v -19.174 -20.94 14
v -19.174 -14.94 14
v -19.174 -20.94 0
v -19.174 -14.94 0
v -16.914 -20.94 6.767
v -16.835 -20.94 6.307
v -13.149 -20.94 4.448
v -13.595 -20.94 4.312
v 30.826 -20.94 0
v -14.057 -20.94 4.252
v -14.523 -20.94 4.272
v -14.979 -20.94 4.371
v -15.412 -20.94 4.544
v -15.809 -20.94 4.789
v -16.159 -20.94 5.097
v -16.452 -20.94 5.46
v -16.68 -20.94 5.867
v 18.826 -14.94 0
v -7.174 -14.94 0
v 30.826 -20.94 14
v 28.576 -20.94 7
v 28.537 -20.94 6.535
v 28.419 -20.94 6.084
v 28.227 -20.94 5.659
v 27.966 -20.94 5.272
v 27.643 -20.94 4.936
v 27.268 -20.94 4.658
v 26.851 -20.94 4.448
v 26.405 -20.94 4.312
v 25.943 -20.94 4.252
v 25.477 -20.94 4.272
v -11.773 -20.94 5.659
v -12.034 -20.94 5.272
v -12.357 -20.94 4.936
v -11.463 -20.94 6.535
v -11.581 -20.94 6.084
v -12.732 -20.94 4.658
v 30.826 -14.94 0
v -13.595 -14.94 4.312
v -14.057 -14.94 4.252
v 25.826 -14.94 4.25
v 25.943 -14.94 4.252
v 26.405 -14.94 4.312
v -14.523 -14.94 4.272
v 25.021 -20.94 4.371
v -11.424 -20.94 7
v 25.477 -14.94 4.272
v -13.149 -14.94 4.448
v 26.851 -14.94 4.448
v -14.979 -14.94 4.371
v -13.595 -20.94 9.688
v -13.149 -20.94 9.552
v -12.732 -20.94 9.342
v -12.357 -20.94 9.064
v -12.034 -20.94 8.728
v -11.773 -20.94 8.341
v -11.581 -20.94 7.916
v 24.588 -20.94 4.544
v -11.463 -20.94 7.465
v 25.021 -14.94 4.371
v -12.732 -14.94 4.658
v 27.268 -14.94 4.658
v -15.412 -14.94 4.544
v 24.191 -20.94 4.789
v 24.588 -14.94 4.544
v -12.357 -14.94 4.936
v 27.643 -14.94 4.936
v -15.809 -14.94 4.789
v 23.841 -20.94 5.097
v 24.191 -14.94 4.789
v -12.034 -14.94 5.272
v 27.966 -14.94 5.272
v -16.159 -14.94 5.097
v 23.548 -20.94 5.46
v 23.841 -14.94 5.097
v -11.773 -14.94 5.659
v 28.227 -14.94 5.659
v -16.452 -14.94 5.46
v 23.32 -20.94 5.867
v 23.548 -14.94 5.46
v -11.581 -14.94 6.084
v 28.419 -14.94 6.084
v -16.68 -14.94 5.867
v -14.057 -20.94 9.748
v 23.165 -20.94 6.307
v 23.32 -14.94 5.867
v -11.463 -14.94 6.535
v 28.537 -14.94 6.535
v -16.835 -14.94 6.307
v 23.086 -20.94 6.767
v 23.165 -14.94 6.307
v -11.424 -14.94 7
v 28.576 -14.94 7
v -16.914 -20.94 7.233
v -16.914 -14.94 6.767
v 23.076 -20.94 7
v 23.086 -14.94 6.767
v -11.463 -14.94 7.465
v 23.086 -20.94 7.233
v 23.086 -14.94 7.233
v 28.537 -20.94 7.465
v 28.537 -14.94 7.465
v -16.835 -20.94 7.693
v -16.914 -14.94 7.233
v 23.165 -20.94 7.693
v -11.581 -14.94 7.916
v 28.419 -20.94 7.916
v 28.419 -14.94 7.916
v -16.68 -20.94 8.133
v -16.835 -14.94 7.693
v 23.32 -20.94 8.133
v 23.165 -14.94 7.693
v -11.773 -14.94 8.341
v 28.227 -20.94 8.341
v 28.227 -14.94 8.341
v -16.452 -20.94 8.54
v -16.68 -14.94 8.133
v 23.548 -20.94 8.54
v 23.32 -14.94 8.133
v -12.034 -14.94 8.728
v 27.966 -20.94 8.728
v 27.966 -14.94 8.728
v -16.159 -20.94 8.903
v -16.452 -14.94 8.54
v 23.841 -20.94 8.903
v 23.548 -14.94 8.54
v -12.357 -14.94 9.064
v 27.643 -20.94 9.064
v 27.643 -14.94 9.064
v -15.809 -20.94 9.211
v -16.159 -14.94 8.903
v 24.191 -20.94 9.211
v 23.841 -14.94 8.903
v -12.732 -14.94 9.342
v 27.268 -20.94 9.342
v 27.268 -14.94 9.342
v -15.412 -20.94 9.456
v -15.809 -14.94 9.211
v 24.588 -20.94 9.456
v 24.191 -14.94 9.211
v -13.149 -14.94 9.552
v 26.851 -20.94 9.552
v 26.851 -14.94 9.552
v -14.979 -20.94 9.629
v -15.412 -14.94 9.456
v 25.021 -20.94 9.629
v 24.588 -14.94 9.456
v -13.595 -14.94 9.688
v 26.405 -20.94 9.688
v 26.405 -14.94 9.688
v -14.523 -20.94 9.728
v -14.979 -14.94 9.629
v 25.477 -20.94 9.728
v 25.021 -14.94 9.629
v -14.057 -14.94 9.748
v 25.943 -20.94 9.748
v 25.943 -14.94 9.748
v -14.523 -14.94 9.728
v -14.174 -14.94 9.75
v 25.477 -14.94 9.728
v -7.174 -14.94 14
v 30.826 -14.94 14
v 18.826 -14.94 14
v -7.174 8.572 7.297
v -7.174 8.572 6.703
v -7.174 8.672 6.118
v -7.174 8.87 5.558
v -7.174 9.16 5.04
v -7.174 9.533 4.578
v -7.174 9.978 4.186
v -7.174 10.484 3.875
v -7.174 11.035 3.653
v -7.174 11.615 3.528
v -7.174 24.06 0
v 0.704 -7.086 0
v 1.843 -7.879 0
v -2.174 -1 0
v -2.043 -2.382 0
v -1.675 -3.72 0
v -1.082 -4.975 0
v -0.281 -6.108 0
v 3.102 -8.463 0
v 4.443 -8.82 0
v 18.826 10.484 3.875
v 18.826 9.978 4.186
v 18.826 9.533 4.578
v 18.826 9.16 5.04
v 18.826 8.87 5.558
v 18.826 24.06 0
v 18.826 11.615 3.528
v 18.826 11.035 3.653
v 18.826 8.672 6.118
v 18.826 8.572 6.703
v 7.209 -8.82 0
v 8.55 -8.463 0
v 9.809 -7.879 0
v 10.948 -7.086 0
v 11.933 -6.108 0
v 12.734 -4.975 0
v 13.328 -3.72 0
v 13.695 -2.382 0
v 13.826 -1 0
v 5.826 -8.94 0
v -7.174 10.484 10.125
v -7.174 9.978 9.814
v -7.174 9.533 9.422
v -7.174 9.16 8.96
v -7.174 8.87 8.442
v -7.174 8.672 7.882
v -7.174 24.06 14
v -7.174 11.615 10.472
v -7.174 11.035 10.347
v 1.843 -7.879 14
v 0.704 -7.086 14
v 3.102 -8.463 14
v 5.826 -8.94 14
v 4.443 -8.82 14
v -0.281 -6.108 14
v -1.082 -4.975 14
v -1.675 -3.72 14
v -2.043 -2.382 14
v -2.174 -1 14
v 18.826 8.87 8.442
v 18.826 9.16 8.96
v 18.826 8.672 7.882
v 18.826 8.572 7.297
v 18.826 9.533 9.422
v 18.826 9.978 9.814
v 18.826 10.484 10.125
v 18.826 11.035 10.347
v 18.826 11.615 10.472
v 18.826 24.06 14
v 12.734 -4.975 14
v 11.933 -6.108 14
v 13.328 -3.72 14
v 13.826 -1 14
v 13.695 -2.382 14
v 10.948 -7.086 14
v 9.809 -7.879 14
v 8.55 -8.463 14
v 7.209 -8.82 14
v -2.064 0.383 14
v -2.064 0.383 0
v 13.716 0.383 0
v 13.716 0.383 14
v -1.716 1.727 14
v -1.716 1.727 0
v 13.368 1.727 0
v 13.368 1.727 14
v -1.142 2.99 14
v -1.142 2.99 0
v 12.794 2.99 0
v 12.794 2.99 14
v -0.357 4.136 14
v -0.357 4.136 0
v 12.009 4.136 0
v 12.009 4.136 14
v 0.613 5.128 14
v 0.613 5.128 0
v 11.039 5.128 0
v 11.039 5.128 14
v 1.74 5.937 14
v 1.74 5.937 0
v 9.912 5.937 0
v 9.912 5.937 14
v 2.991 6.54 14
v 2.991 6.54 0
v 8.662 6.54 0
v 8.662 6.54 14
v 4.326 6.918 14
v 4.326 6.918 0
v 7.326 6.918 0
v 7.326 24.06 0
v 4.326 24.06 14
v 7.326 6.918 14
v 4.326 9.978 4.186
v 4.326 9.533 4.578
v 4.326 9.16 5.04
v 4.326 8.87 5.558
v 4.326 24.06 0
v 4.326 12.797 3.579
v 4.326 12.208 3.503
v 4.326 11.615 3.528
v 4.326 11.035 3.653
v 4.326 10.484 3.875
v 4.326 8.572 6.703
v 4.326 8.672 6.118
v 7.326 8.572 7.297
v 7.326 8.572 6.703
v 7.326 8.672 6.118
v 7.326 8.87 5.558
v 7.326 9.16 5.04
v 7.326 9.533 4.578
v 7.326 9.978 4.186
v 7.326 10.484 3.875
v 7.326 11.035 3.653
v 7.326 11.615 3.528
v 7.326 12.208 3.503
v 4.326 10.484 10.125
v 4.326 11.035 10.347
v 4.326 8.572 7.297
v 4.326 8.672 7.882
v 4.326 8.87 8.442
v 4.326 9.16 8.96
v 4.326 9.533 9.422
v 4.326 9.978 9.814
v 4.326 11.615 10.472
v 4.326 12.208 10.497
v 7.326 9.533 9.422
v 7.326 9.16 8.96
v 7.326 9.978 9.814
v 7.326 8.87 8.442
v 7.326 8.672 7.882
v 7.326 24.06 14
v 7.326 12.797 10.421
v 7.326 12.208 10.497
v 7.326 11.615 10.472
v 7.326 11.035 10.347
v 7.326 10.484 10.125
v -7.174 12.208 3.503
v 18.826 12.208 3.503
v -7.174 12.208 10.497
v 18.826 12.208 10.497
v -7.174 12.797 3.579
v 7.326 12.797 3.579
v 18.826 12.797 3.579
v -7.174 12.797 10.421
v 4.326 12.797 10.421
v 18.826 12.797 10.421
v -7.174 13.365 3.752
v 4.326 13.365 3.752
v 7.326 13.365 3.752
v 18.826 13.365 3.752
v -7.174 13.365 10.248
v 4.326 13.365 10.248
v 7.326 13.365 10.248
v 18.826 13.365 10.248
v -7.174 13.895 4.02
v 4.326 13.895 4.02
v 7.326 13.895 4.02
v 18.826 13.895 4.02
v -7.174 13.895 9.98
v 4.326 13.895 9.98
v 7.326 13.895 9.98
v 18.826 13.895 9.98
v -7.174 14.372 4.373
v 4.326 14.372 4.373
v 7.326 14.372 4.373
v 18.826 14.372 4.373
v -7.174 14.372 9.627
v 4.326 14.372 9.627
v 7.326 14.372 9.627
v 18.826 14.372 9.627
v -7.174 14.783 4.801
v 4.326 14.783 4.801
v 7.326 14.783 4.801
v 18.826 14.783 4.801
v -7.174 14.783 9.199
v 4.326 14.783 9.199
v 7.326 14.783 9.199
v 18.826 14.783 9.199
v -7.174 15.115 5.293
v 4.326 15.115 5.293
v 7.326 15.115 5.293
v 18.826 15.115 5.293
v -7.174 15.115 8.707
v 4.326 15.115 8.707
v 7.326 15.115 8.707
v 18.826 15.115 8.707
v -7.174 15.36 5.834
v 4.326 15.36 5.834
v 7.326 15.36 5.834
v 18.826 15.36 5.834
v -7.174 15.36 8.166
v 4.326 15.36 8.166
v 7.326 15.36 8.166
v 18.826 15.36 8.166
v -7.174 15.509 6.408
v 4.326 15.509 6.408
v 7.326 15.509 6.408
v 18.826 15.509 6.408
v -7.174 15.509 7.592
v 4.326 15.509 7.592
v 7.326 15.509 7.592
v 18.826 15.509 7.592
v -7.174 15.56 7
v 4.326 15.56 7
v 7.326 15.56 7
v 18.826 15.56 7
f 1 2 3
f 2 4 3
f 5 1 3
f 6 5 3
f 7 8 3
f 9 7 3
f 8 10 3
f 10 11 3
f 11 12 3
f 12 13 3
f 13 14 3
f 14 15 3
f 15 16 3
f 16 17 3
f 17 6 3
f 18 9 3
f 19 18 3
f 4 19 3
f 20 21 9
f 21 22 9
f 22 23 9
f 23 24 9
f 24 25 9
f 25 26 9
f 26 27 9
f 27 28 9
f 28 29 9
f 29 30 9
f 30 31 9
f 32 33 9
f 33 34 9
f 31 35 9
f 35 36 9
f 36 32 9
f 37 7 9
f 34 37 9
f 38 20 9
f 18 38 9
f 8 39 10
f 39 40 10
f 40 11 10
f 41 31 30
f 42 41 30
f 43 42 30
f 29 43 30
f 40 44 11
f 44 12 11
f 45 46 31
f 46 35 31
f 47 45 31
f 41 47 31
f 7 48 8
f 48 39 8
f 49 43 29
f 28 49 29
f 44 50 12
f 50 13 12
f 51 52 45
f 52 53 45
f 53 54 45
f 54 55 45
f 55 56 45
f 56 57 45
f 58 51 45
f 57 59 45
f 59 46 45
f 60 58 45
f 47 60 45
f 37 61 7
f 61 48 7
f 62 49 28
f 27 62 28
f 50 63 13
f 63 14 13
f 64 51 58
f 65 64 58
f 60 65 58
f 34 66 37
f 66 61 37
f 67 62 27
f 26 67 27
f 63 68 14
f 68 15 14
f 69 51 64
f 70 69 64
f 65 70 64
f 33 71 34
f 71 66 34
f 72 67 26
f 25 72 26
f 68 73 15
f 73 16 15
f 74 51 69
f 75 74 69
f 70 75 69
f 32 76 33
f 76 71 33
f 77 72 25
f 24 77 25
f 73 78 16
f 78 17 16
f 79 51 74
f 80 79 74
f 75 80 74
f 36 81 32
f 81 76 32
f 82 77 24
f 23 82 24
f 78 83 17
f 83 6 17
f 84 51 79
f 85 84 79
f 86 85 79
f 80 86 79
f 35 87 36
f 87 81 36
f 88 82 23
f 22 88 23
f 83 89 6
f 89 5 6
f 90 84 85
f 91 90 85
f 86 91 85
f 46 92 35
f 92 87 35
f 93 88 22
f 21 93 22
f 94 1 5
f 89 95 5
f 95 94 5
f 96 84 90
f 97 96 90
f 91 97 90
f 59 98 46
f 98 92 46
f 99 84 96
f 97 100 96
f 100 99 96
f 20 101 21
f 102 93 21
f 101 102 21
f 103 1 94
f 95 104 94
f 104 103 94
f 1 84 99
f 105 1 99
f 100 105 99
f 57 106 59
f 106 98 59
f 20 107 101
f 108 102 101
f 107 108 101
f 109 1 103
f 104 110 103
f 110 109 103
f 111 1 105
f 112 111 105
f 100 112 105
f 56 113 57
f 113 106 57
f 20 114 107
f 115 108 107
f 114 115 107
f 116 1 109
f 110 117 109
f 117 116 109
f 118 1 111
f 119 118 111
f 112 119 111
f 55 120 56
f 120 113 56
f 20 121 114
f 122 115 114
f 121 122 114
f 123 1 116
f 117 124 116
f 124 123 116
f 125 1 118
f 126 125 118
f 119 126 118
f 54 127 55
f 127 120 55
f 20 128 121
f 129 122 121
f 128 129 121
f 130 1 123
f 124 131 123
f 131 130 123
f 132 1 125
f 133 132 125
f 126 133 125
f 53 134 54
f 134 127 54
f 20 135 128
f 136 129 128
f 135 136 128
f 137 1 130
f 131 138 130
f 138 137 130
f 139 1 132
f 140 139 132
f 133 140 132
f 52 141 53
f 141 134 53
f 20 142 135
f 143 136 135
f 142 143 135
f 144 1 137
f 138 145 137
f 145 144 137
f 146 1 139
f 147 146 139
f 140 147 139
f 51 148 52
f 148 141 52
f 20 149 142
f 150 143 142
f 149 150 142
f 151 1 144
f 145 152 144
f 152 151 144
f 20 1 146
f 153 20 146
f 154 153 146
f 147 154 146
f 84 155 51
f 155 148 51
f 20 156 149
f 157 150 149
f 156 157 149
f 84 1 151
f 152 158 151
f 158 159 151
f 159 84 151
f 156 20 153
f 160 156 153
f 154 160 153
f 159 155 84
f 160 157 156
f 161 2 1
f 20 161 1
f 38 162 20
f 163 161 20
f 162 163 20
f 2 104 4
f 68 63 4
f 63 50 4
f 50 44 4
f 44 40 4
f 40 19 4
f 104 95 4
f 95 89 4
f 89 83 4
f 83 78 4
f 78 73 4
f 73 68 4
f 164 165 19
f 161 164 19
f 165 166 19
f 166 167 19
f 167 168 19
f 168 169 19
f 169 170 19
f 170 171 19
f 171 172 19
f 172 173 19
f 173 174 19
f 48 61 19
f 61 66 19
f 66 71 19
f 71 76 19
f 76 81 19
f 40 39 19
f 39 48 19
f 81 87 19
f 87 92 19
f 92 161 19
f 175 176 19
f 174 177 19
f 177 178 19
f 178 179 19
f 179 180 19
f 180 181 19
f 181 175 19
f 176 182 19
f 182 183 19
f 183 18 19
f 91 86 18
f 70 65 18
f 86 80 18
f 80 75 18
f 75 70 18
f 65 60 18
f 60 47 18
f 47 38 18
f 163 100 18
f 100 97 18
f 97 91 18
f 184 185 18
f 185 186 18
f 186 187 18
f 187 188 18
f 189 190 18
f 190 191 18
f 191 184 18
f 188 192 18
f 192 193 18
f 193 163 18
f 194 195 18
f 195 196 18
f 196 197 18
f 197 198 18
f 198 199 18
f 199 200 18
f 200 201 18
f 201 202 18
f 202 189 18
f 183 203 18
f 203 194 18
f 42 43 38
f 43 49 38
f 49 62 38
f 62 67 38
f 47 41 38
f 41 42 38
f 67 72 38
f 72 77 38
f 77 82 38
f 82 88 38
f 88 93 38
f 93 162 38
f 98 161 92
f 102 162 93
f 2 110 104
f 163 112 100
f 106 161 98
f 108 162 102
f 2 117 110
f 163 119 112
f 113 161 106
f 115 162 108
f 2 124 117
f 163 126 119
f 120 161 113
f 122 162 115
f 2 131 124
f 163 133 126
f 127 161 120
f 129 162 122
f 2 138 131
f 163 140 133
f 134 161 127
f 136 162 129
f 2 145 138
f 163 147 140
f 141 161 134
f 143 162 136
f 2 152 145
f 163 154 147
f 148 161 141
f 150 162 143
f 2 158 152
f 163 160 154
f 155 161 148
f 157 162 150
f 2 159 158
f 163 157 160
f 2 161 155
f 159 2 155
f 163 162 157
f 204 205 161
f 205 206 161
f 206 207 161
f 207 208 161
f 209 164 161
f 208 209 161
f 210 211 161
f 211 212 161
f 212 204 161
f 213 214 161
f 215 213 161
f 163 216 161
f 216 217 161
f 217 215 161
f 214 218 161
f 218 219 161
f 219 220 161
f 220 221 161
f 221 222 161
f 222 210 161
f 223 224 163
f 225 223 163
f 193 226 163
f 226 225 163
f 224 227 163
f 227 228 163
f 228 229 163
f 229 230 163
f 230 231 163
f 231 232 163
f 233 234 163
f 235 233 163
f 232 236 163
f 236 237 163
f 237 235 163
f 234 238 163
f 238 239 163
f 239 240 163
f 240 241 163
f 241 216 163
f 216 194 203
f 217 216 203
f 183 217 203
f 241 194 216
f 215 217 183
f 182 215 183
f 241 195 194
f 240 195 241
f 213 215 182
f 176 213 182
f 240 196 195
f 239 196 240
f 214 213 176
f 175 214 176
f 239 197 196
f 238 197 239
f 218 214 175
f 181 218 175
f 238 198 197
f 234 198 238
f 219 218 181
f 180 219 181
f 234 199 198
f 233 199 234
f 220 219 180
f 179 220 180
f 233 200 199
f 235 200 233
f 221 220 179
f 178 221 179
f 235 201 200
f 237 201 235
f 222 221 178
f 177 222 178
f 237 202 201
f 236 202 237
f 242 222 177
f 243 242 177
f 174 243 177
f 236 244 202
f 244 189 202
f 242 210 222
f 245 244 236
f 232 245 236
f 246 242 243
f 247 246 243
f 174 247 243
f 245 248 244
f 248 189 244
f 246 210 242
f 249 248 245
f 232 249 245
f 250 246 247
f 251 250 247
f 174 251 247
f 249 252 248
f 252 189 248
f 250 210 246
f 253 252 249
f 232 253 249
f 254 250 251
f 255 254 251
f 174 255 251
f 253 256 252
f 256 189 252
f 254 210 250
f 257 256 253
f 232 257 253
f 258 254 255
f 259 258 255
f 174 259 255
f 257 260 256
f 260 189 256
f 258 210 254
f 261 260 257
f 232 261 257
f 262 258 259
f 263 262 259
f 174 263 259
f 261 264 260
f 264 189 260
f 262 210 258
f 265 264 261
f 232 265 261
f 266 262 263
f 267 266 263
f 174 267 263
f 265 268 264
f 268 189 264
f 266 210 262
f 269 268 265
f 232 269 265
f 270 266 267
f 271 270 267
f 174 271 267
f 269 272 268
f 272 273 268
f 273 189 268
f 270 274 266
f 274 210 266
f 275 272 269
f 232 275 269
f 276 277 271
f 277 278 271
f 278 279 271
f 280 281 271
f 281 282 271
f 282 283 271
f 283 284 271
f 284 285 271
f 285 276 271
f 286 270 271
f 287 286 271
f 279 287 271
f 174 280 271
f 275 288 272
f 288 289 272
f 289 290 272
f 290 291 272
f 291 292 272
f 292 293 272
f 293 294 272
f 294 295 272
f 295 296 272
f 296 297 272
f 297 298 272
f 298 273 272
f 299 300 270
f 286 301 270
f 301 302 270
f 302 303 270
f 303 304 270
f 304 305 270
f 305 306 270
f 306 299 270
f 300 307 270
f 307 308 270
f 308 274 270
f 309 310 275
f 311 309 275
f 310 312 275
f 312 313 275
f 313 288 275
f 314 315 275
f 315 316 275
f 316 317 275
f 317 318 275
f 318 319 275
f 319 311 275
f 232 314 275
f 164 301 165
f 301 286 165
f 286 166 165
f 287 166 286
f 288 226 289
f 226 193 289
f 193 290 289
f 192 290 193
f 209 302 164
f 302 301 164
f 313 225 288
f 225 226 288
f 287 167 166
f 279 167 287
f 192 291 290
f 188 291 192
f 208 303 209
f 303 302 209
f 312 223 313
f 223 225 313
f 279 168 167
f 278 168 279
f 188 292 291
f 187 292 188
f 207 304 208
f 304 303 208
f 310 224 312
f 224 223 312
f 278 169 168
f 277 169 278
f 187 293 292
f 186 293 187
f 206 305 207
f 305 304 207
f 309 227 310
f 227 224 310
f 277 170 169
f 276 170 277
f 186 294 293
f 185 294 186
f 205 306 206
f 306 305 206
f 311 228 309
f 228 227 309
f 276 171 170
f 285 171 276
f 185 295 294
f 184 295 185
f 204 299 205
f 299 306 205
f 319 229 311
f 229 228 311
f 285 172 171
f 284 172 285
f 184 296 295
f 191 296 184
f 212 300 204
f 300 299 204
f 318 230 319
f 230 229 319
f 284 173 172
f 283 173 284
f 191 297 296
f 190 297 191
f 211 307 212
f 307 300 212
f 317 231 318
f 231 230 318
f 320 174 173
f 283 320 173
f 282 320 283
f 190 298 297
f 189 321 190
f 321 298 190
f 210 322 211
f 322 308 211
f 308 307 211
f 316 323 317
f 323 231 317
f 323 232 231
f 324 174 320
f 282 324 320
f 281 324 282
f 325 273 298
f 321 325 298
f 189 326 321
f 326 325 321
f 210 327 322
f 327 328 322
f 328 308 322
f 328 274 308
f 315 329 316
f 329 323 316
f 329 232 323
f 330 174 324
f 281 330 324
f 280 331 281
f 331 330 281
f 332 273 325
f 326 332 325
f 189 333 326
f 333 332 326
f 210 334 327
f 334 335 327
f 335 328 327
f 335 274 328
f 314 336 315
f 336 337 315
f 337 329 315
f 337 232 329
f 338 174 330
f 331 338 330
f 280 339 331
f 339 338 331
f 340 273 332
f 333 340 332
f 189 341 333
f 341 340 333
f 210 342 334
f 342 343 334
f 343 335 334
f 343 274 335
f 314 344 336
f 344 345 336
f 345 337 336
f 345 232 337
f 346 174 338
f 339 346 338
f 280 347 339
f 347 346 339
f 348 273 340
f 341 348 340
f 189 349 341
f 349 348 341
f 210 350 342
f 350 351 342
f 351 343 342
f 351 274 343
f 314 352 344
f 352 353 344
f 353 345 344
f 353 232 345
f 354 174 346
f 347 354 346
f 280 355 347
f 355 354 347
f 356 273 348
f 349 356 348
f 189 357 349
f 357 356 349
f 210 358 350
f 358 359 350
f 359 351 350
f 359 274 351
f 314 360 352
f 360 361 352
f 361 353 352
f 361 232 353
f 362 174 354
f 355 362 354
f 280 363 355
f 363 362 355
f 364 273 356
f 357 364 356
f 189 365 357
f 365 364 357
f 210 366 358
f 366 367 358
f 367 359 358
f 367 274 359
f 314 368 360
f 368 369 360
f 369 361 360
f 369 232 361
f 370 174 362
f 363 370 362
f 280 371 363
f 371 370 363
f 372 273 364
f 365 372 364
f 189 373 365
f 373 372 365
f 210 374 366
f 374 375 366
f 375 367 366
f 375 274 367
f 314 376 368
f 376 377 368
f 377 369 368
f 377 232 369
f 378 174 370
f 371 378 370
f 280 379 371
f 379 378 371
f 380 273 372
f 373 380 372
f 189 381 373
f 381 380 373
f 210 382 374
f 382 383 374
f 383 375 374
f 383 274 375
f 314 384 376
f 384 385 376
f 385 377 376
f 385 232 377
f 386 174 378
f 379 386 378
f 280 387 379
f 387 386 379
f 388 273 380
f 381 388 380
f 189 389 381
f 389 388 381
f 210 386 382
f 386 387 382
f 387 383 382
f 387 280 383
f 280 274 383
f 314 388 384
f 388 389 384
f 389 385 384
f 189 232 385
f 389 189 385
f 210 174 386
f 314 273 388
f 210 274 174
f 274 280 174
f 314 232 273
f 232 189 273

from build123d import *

# Parameters (mm, degrees)
EXTRUDE_1_DEPTH     = 14
CUT_EXTRUDE_START   = -26
SKETCH_2_R          = 3.5
CUT_EXTRUDE_1_DEPTH = 26
SKETCH_3_R          = 2.75
CUT_EXTRUDE_2_DEPTH = 14


with BuildPart() as part:
    # 草图1 → 凸台-拉伸1 (new body)
    with BuildSketch(Plane.XY):
        with BuildLine():
            Line((4.326086957, 24.059506973), (-7.173913043, 24.059506973))
            Line((-7.173913043, 24.059506973), (-7.173913043, -14.940493027))
            Line((-7.173913043, -14.940493027), (-19.173913043, -14.940493027))
            Line((-19.173913043, -14.940493027), (-19.173913043, -20.940493027))
            Line((-19.173913043, -20.940493027), (30.826086957, -20.940493027))
            Line((30.826086957, -20.940493027), (30.826086957, -14.940493027))
            Line((30.826086957, -14.940493027), (18.826086957, -14.940493027))
            Line((18.826086957, -14.940493027), (18.826086957, 24.059506973))
            Line((18.826086957, 24.059506973), (7.326086957, 24.059506973))
            Line((7.326086957, 24.059506973), (7.326086957, 6.917623795))
            ThreePointArc((7.326086957, 6.917623795), (11.990500959, 4.158526486), (13.826086957, -0.940493027))
            ThreePointArc((13.826086957, -0.940493027), (0.727067443, -7.10490703), (4.326086957, 6.917623795))
            Line((4.326086957, 6.917623795), (4.326086957, 24.059506973))
        make_face()
    extrude(amount=EXTRUDE_1_DEPTH)

    # 草图2 → 切除-拉伸1 (cut)
    with BuildSketch(Plane(origin=(18.826086957, 0, 0), x_dir=(0, 0, -1), z_dir=(1, 0, 0)).offset(CUT_EXTRUDE_START)):
        with Locations(Location((-7, 12.059506973, 0), (0, 0, 90))):
            Circle(SKETCH_2_R)
    extrude(amount=CUT_EXTRUDE_1_DEPTH, mode=Mode.SUBTRACT)

    # 草图3 → 切除-拉伸2 (cut)
    with BuildSketch(Plane(origin=(0, -20.940493027, 0), x_dir=(-1, 0, 0), z_dir=(0, -1, 0))):
        with Locations(Location((14.173913043, -7, 0), (0, 0, 180))):
            Circle(SKETCH_3_R)
        with Locations(Location((-25.826086957, -7, 0), (0, 0, 90))):
            Circle(SKETCH_3_R)
    extrude(amount=-CUT_EXTRUDE_2_DEPTH, mode=Mode.SUBTRACT)


solid = part.part
